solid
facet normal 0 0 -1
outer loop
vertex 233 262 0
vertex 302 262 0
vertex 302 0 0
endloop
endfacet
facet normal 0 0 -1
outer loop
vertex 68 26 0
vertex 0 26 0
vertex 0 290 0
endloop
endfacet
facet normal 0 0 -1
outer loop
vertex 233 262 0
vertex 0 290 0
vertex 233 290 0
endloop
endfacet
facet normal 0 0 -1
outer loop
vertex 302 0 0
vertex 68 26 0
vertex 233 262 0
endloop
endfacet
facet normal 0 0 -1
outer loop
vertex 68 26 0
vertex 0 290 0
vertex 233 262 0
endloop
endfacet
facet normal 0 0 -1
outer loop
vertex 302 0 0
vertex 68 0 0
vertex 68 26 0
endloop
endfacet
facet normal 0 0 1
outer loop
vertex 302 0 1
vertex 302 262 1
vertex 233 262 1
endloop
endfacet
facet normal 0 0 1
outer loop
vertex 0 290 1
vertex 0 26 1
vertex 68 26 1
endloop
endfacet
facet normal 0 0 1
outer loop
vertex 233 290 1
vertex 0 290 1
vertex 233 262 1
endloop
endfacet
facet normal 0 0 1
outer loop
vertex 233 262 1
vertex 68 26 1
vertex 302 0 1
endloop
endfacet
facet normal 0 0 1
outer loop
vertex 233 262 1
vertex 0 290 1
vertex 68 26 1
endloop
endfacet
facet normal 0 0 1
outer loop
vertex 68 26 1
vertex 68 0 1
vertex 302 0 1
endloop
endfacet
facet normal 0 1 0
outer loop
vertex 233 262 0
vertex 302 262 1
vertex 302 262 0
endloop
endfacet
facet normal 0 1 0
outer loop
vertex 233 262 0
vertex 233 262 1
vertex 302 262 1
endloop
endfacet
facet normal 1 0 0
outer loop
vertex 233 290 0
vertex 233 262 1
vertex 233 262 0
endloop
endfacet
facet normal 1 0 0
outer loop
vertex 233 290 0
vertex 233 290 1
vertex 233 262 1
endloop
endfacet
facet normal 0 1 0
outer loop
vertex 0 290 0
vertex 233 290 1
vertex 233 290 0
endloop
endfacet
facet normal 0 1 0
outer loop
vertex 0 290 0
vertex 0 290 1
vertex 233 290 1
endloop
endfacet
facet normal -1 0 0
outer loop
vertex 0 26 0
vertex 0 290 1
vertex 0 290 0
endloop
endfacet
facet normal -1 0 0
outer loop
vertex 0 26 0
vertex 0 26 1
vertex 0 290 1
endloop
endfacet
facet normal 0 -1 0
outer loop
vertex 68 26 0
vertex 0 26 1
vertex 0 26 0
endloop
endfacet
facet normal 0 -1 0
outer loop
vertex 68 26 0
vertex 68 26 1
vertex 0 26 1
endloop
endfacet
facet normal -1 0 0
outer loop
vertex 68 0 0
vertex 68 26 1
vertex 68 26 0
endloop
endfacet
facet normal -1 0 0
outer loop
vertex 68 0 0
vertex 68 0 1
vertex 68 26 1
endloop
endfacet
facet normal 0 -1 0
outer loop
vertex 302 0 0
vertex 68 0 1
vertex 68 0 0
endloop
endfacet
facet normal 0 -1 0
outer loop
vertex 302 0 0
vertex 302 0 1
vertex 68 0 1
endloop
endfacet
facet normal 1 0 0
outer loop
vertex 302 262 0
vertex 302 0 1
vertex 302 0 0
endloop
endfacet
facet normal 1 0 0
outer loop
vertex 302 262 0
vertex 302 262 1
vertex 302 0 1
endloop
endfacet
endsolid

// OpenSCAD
/* four clips */
if (0) { linear_extrude(height=1) polygon(points=[[10,32],[10,245],[104,245],[104,290],[198,290],[198,245],
                [301,245],[301,29],[224,29],[224,0],[89,0],[89,32]]);
}

/* two clips */
if (0) linear_extrude(height=1) polygon(points=[[10,32],[10,290],[198,290],[198,245],
                [301,245],[301,0],[89,0],[89,32]]);

/* two clips, new bed */
linear_extrude(height=1) polygon(points=[[0,26],[0,290],[233,290],[233,262],
                [302,262],[302,0],[68,0],[68,26]]);
